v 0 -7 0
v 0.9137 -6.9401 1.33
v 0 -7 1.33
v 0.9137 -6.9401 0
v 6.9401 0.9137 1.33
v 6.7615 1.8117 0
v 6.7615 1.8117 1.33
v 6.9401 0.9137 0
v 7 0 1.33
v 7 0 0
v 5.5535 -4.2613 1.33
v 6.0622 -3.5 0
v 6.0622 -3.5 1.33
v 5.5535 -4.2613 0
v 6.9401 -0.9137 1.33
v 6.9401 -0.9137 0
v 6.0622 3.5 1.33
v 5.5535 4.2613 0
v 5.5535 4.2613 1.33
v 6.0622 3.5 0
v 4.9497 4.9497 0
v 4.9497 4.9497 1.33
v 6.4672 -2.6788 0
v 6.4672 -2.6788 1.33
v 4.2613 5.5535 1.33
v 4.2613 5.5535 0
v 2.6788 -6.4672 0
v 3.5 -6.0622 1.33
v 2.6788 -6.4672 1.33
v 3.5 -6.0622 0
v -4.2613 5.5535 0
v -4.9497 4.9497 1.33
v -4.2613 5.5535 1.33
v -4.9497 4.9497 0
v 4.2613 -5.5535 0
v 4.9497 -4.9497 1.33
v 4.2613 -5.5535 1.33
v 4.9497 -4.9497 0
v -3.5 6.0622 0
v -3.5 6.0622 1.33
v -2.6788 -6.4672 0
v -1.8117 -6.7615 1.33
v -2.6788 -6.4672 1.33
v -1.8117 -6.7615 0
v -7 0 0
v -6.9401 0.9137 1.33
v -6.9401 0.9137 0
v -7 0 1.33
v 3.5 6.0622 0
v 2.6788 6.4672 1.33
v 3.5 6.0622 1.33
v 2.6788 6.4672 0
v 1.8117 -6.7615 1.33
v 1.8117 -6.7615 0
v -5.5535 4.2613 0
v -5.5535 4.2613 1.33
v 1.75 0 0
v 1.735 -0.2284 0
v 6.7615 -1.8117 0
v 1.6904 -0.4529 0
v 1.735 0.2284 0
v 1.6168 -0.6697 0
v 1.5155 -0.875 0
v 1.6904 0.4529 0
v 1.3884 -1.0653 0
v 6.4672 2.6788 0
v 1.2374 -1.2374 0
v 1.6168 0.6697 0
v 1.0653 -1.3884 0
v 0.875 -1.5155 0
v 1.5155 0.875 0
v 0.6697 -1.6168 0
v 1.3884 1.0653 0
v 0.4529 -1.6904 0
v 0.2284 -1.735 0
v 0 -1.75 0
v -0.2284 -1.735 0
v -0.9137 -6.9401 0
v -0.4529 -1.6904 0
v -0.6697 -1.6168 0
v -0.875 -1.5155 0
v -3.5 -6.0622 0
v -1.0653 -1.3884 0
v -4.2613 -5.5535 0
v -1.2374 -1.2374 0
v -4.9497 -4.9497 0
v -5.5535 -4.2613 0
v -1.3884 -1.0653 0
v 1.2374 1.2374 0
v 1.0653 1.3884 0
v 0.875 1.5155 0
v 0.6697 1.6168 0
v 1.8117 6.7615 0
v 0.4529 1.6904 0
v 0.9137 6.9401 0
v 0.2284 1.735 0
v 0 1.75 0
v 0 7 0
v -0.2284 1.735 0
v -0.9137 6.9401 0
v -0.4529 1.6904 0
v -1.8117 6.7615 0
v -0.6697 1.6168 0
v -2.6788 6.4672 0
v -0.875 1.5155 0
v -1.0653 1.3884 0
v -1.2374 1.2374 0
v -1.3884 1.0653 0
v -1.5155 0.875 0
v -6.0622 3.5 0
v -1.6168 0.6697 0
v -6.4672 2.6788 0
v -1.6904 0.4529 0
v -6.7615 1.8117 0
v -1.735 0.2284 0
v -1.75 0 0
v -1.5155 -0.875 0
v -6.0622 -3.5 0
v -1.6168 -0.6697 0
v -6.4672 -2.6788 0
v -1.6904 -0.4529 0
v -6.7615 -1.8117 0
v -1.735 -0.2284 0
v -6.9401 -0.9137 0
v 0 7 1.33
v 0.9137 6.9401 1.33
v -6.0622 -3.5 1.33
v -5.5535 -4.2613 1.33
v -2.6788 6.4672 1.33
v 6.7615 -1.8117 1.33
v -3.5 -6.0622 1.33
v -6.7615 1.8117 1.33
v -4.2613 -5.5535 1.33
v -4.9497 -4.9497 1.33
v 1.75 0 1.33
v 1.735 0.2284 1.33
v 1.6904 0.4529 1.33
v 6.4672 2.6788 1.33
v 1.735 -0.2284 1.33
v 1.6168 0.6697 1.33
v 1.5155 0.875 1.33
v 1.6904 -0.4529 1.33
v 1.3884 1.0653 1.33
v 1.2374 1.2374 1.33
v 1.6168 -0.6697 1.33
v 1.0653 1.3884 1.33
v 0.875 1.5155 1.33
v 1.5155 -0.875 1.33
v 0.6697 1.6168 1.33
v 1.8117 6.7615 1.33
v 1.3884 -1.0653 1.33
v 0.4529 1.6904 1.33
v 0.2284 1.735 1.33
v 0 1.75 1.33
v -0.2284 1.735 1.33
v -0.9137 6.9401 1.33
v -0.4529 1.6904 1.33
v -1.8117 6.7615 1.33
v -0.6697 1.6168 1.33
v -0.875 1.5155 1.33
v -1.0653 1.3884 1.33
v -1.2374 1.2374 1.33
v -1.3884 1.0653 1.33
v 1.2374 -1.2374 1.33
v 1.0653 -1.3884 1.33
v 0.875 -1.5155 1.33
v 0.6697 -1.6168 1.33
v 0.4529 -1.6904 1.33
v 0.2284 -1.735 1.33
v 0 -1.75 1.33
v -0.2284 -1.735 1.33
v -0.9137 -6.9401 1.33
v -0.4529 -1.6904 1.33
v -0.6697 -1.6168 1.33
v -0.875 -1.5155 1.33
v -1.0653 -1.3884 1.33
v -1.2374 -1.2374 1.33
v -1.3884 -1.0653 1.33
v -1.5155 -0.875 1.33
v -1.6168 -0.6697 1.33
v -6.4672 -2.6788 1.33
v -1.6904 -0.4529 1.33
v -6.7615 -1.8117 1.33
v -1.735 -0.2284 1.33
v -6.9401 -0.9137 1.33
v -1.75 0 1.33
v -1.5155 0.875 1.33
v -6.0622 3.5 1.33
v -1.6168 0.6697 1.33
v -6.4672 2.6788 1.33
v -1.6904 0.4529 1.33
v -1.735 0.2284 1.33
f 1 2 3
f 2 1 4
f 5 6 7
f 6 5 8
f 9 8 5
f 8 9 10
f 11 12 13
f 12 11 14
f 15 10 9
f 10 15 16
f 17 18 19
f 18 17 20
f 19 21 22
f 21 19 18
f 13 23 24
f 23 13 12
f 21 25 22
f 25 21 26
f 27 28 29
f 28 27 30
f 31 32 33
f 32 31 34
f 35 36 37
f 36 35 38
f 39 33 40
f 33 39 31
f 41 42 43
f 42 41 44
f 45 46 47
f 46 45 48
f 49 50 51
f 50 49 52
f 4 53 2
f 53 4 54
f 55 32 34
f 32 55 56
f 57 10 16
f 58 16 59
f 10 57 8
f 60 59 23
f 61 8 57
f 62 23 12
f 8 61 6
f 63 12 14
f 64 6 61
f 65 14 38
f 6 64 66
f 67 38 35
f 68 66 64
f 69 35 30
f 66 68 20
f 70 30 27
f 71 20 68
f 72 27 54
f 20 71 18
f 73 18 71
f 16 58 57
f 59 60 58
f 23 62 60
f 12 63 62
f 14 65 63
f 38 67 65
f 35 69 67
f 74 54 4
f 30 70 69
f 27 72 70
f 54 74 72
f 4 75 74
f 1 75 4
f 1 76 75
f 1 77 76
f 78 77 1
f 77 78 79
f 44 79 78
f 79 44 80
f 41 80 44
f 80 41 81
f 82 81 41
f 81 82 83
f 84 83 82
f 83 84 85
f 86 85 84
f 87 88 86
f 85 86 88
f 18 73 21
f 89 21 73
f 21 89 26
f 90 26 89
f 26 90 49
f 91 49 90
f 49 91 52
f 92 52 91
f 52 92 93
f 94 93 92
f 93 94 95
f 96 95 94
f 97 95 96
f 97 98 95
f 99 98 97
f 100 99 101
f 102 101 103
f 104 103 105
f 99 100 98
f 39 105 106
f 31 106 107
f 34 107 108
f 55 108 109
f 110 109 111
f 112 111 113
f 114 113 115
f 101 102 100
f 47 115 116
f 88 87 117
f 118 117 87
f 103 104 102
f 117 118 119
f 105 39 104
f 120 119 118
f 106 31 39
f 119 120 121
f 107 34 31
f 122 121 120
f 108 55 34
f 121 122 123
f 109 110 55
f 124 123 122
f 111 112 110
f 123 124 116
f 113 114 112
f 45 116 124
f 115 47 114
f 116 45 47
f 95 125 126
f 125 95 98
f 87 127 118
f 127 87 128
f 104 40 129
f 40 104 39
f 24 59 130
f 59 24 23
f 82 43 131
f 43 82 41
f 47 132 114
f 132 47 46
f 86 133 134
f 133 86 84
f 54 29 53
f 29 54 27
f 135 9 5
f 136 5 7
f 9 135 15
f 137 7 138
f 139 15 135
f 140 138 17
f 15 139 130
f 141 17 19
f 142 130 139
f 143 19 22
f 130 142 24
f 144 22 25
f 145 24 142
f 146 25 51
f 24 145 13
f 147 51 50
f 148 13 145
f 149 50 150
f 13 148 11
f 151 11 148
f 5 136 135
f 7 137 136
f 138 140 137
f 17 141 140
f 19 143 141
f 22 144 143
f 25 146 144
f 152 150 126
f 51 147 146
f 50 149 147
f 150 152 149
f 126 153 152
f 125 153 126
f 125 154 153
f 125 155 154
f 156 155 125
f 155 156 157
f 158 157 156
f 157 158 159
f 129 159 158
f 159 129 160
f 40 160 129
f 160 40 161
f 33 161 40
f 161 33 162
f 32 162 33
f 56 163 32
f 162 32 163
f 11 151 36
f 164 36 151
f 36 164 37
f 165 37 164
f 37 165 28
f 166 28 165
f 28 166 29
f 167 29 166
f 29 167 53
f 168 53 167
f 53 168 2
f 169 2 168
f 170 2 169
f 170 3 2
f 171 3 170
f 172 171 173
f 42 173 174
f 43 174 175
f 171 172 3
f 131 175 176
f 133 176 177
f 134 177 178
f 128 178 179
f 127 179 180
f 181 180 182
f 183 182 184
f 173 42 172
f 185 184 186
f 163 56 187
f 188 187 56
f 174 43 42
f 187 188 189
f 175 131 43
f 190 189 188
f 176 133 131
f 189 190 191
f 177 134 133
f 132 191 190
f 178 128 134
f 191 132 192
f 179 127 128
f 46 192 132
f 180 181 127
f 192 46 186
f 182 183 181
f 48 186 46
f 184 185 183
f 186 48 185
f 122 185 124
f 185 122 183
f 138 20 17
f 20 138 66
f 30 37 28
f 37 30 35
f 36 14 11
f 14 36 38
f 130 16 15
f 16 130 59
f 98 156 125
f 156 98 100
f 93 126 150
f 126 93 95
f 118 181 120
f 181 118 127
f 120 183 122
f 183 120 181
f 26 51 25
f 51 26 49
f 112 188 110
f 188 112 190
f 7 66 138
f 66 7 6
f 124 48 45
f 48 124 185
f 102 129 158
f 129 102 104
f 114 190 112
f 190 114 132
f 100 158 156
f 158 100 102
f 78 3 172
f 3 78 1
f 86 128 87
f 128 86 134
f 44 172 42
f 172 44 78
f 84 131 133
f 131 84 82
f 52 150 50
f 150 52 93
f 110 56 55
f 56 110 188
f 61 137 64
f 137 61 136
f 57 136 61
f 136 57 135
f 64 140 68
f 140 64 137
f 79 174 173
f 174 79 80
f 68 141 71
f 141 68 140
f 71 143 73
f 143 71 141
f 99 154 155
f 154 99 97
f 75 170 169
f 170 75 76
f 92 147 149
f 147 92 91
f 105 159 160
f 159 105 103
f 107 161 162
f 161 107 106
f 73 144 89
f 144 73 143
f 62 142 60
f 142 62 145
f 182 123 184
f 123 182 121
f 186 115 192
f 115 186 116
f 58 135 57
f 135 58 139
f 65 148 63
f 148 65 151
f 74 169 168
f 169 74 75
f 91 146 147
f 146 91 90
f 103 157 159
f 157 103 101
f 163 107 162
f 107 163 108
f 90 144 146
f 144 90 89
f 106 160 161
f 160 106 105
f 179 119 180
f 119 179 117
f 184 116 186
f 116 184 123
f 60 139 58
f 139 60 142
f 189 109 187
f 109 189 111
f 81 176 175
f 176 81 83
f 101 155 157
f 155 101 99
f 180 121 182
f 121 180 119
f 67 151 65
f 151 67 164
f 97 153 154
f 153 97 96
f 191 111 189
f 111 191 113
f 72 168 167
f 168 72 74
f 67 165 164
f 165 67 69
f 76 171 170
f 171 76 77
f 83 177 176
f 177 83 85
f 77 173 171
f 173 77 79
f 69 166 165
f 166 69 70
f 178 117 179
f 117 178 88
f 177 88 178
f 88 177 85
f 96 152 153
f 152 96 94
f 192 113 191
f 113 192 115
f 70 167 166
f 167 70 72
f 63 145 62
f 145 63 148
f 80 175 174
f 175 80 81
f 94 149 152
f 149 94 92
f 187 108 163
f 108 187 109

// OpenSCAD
// file: parameters.scad
// =============================================================================
// Gen-V Dual-rotor NANO-GAP AFPM — WOUND-AWARE parameters (HARD GATE)
// PRIMARY challenger vs Gen-S. Thinner m2m + more copper (140 t).
// =============================================================================

// --- Wire / wind budget (26 AWG, ~1 lb spool ≈ 390 m bare-equiv) --------------
wire_awg            = 26;
wire_od             = 0.45;     // insulated OD mm
turns               = 140;      // +10 vs Gen-S
fill                = 0.70;
layers_per_face     = 2;        // axial layers proud of EACH flange
wind_build_axial    = layers_per_face * wire_od * fill;   // 0.63 mm
wind_build_radial   = 3 * wire_od * fill;                 // 0.945 mm

// --- Pancake former (bare STL) — thinner web/flange than Gen-S ---------------
coil_id_r           = 23.0;     // larger window vs Gen-S 24–56
coil_od_r           = 58.0;
span_deg            = 26.0;     // 12 stations × 30° pitch
former_web          = 2.0;
flange_t            = 0.75;
wall                = 1.2;
slot_w              = 2.4;
mount_hole          = 3.5;
tab_len             = 7.0;

former_bare_h       = former_web + 2 * flange_t;            // 3.5 mm
coil_envelope_h     = former_bare_h + 2 * wind_build_axial; // 4.76 mm

// --- Running clearance (magnet face → WOUND face) EACH side ------------------
run_clear           = 0.70;     // PASS ≥ 0.70 (prefer ≥0.70)
gap_spacer_h        = run_clear + wind_build_axial;         // 1.33 mm
m2m                 = coil_envelope_h + 2 * run_clear;      // 6.16 mm (beats Gen-S 6.66)

// --- Mid stator (12 pancakes 3φ; winds proud both faces) ---------------------
coil_stations       = 12;
bay_r_in            = coil_id_r - 2.0 - wind_build_radial;
bay_r_out           = coil_od_r + 2.0 + wind_build_radial;
bay_span            = span_deg + 4.0;
bay_offset          = 2.0;
stator_thick        = former_bare_h;                        // winds proud ±Z
stator_od           = 156.0;
shaft_clear_stator  = 36.0;
coil_mount_r        = 28.0;

// --- Rotors (×2) — 8×Ø20 + 24×Ø5 Halbach each face ---------------------------
large_pocket_d      = 20.3;
small_pocket_d      = 5.3;
pocket_h            = 5.2;
large_n             = 8;
R_large             = 52.0;
R_small_inner       = 40.0;
R_small_mid         = 52.0;
R_small_outer       = 64.0;
carrier_od          = 152.0;
carrier_thick       = 7.5;
hub_h               = 10.0;
hub_od              = 30.0;
rotor_b_offset_deg  = 22.5;

// --- Modular MAX interface (Gen-E family) ------------------------------------
shaft_bore          = 8.35;
bearing_d           = 21.85;
bearing_h           = 7.2;
m3_clear            = 3.5;
bolt_r_inner        = 36.0;
bolt_n_inner        = 6;
flange_bolt_r       = 72.0;
flange_bolt_n       = 6;
brace_r             = 68.0;
brace_d             = 4.3;
brace_n             = 4;

spacer_pad_od       = 14.0;
spacer_pad_id       = m3_clear;
endbell_od          = 156.0;
endbell_thick       = 8.0;
endbell_shaft_clear = 10.0;

$fn = 64;
// main file
// Gen-V gap spacer — h = run_clear + wind_build_axial; print ×12
include <parameters.scad>;
$fn = 48;
difference() {
    cylinder(d=spacer_pad_od, h=gap_spacer_h);
    translate([0, 0, -0.1]) cylinder(d=spacer_pad_id, h=gap_spacer_h + 0.2);
}
